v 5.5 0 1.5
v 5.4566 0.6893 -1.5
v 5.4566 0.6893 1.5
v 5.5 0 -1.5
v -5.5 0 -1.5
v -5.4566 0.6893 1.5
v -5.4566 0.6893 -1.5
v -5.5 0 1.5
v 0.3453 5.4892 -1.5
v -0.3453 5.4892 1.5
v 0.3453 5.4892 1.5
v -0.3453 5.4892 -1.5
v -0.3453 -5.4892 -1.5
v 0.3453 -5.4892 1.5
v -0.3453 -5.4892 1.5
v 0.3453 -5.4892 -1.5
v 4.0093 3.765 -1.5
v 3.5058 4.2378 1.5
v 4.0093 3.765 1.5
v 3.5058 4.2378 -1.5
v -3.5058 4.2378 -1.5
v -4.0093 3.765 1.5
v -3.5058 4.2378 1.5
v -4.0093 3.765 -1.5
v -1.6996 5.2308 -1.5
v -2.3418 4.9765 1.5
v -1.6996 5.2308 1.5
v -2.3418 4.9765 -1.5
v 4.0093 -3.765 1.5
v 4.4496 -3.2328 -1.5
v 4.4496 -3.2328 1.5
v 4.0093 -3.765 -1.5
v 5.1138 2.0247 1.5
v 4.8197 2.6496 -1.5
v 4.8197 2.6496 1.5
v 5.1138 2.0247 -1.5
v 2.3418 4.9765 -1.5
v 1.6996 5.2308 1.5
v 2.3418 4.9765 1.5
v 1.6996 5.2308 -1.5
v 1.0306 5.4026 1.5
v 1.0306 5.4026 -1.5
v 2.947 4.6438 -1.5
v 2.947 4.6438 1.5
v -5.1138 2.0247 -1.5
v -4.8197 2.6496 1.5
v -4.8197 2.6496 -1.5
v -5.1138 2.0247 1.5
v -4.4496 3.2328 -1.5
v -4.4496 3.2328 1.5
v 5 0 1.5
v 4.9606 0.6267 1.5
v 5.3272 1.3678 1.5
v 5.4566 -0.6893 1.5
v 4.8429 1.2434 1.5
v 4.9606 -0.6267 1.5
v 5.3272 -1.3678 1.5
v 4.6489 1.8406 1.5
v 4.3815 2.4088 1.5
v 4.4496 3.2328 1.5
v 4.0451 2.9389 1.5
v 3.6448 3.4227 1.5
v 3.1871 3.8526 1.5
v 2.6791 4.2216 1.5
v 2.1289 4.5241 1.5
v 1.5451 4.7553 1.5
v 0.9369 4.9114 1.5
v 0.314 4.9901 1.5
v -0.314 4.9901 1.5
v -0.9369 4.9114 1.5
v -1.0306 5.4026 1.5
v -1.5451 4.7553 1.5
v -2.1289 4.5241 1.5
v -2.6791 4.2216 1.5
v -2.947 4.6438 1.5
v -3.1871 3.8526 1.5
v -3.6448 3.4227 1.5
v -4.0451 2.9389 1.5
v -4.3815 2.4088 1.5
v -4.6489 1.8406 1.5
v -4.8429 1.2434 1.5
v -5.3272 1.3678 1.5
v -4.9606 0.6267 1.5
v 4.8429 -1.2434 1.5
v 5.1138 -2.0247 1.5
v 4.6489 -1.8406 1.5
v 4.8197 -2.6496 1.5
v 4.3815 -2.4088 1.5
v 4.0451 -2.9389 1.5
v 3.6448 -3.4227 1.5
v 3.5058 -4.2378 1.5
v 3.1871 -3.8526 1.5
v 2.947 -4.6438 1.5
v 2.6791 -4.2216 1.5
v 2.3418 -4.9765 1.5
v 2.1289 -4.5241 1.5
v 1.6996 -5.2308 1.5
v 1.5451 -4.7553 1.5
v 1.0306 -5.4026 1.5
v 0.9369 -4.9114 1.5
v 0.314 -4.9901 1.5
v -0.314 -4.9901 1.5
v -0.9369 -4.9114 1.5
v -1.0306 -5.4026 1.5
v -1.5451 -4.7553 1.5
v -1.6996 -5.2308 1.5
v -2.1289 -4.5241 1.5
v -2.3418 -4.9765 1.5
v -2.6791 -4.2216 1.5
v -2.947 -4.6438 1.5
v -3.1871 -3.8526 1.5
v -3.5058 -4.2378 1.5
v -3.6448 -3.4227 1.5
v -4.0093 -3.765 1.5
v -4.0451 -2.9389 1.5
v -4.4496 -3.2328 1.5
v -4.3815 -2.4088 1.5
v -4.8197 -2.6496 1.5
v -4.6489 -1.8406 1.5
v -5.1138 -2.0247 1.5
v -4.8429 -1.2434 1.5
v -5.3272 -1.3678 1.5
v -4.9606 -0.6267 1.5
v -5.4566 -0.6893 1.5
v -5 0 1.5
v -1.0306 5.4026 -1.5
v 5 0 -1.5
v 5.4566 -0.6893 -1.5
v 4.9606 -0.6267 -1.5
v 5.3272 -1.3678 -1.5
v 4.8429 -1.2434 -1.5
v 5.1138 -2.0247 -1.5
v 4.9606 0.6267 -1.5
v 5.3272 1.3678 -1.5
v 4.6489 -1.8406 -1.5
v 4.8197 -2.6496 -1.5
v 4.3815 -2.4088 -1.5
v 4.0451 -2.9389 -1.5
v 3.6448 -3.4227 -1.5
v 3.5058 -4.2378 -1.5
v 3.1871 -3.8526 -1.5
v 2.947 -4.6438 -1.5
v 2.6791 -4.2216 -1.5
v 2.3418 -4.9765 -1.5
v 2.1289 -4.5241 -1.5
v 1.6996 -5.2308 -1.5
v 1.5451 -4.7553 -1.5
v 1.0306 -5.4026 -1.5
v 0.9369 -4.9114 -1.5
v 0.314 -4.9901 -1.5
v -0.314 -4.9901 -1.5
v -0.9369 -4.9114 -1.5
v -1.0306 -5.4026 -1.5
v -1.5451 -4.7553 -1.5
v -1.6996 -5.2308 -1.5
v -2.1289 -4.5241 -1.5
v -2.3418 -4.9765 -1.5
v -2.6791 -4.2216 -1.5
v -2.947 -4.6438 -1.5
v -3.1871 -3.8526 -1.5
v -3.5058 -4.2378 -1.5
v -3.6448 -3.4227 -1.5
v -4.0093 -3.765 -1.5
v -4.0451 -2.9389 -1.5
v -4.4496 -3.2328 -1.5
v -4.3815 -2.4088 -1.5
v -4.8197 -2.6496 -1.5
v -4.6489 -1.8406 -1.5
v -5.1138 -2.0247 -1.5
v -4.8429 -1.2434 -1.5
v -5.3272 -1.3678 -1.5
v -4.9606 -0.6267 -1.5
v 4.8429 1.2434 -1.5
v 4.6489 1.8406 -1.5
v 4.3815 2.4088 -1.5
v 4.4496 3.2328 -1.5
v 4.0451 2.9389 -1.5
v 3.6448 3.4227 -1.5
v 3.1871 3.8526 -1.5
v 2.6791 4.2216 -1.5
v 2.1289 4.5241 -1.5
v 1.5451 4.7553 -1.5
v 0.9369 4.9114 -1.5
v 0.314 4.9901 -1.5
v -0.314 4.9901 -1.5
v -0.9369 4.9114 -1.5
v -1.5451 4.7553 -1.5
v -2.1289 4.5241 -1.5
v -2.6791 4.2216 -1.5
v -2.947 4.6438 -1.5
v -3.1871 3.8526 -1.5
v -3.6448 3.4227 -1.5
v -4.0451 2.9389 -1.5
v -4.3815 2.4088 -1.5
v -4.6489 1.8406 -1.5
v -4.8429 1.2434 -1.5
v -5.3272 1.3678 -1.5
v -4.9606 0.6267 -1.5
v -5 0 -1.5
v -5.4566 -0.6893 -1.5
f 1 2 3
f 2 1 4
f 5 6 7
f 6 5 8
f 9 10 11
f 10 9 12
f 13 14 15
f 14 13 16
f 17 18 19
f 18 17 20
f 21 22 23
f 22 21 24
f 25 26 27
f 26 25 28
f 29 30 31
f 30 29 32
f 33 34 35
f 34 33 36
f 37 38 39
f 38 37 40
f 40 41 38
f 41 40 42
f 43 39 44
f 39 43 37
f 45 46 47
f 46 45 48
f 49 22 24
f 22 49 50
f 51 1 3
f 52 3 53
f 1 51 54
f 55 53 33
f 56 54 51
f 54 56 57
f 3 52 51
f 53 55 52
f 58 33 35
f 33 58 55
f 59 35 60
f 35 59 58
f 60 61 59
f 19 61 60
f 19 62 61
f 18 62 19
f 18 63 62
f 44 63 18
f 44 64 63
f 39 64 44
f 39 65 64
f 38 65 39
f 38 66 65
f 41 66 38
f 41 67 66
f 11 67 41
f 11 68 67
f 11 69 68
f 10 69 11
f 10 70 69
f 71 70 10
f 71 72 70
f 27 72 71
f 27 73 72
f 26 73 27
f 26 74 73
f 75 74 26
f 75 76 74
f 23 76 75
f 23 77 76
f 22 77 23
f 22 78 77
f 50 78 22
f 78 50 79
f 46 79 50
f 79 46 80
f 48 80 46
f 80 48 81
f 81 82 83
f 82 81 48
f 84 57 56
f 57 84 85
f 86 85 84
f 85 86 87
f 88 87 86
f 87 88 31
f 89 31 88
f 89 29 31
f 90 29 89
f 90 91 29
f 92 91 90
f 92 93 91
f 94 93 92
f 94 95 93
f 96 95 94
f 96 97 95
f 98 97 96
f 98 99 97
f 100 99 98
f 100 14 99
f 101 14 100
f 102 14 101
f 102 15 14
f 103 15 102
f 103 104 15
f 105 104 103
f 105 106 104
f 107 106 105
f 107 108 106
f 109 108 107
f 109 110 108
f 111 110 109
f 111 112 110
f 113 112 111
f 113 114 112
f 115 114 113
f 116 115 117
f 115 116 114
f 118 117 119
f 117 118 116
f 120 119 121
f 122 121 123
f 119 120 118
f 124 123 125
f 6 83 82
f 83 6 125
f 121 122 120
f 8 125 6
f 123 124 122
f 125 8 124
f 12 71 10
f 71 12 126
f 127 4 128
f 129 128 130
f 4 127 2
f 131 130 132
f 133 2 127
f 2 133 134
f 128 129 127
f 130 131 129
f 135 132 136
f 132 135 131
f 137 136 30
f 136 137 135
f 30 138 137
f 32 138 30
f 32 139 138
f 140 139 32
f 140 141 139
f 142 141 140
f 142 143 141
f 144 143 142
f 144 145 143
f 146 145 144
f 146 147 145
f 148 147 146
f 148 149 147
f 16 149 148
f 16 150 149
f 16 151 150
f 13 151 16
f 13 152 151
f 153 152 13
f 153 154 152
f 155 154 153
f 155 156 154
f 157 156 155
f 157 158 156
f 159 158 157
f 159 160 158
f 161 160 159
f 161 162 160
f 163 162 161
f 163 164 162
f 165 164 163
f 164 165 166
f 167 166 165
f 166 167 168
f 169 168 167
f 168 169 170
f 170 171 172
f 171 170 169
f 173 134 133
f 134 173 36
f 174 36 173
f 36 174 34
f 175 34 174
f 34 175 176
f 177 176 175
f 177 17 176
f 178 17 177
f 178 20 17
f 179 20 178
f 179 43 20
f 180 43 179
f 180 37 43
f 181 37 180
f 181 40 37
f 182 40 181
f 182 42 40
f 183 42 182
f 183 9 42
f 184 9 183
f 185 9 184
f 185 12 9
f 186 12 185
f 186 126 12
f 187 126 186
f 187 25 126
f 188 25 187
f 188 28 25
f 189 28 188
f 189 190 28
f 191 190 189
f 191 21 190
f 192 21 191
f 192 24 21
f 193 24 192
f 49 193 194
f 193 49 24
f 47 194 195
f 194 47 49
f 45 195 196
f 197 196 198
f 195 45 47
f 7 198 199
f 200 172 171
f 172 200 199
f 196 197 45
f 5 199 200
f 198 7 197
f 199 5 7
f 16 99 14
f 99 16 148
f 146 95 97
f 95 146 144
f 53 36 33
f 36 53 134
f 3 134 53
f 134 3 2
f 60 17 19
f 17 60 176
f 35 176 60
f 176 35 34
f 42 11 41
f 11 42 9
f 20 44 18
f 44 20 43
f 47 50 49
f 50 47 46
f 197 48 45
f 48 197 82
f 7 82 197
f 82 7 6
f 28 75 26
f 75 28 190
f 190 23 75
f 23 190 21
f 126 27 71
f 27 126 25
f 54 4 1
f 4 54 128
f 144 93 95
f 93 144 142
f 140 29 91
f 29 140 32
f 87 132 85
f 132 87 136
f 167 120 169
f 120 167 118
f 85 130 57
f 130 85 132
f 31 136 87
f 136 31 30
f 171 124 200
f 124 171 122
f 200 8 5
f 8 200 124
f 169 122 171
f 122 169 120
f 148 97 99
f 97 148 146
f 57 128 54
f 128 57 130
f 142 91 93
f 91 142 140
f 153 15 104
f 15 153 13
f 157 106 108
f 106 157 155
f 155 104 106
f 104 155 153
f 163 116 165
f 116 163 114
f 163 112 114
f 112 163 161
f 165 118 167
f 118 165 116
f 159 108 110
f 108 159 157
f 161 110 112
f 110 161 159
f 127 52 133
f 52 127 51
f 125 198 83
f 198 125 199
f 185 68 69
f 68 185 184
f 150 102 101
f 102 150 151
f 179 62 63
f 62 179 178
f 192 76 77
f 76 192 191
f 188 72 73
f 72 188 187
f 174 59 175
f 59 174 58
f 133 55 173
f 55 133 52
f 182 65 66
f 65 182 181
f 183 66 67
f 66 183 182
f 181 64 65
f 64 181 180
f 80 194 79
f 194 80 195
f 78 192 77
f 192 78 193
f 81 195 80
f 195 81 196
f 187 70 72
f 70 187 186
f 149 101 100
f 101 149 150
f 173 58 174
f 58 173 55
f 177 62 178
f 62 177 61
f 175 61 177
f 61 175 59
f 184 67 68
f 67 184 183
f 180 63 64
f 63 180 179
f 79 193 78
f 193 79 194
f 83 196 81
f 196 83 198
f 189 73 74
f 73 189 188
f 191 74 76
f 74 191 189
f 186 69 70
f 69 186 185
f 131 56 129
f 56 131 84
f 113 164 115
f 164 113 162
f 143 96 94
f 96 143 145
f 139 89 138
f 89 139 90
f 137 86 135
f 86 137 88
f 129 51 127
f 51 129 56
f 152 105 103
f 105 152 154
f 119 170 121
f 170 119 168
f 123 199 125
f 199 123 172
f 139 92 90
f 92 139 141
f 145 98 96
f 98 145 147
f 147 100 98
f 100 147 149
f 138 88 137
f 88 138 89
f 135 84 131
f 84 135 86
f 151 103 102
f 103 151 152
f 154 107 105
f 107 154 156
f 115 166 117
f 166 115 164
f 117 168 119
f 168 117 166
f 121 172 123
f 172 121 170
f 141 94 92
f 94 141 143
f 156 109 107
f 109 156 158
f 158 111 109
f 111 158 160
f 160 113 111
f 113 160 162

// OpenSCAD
$fn = 50;


difference() {
	union() {
		translate(v = [0, 0, -1.5000000000]) {
			cylinder(h = 3, r = 5.5000000000);
		}
	}
	union() {
		translate(v = [0, 0, -100.0000000000]) {
			cylinder(h = 200, r = 5);
		}
	}
}
